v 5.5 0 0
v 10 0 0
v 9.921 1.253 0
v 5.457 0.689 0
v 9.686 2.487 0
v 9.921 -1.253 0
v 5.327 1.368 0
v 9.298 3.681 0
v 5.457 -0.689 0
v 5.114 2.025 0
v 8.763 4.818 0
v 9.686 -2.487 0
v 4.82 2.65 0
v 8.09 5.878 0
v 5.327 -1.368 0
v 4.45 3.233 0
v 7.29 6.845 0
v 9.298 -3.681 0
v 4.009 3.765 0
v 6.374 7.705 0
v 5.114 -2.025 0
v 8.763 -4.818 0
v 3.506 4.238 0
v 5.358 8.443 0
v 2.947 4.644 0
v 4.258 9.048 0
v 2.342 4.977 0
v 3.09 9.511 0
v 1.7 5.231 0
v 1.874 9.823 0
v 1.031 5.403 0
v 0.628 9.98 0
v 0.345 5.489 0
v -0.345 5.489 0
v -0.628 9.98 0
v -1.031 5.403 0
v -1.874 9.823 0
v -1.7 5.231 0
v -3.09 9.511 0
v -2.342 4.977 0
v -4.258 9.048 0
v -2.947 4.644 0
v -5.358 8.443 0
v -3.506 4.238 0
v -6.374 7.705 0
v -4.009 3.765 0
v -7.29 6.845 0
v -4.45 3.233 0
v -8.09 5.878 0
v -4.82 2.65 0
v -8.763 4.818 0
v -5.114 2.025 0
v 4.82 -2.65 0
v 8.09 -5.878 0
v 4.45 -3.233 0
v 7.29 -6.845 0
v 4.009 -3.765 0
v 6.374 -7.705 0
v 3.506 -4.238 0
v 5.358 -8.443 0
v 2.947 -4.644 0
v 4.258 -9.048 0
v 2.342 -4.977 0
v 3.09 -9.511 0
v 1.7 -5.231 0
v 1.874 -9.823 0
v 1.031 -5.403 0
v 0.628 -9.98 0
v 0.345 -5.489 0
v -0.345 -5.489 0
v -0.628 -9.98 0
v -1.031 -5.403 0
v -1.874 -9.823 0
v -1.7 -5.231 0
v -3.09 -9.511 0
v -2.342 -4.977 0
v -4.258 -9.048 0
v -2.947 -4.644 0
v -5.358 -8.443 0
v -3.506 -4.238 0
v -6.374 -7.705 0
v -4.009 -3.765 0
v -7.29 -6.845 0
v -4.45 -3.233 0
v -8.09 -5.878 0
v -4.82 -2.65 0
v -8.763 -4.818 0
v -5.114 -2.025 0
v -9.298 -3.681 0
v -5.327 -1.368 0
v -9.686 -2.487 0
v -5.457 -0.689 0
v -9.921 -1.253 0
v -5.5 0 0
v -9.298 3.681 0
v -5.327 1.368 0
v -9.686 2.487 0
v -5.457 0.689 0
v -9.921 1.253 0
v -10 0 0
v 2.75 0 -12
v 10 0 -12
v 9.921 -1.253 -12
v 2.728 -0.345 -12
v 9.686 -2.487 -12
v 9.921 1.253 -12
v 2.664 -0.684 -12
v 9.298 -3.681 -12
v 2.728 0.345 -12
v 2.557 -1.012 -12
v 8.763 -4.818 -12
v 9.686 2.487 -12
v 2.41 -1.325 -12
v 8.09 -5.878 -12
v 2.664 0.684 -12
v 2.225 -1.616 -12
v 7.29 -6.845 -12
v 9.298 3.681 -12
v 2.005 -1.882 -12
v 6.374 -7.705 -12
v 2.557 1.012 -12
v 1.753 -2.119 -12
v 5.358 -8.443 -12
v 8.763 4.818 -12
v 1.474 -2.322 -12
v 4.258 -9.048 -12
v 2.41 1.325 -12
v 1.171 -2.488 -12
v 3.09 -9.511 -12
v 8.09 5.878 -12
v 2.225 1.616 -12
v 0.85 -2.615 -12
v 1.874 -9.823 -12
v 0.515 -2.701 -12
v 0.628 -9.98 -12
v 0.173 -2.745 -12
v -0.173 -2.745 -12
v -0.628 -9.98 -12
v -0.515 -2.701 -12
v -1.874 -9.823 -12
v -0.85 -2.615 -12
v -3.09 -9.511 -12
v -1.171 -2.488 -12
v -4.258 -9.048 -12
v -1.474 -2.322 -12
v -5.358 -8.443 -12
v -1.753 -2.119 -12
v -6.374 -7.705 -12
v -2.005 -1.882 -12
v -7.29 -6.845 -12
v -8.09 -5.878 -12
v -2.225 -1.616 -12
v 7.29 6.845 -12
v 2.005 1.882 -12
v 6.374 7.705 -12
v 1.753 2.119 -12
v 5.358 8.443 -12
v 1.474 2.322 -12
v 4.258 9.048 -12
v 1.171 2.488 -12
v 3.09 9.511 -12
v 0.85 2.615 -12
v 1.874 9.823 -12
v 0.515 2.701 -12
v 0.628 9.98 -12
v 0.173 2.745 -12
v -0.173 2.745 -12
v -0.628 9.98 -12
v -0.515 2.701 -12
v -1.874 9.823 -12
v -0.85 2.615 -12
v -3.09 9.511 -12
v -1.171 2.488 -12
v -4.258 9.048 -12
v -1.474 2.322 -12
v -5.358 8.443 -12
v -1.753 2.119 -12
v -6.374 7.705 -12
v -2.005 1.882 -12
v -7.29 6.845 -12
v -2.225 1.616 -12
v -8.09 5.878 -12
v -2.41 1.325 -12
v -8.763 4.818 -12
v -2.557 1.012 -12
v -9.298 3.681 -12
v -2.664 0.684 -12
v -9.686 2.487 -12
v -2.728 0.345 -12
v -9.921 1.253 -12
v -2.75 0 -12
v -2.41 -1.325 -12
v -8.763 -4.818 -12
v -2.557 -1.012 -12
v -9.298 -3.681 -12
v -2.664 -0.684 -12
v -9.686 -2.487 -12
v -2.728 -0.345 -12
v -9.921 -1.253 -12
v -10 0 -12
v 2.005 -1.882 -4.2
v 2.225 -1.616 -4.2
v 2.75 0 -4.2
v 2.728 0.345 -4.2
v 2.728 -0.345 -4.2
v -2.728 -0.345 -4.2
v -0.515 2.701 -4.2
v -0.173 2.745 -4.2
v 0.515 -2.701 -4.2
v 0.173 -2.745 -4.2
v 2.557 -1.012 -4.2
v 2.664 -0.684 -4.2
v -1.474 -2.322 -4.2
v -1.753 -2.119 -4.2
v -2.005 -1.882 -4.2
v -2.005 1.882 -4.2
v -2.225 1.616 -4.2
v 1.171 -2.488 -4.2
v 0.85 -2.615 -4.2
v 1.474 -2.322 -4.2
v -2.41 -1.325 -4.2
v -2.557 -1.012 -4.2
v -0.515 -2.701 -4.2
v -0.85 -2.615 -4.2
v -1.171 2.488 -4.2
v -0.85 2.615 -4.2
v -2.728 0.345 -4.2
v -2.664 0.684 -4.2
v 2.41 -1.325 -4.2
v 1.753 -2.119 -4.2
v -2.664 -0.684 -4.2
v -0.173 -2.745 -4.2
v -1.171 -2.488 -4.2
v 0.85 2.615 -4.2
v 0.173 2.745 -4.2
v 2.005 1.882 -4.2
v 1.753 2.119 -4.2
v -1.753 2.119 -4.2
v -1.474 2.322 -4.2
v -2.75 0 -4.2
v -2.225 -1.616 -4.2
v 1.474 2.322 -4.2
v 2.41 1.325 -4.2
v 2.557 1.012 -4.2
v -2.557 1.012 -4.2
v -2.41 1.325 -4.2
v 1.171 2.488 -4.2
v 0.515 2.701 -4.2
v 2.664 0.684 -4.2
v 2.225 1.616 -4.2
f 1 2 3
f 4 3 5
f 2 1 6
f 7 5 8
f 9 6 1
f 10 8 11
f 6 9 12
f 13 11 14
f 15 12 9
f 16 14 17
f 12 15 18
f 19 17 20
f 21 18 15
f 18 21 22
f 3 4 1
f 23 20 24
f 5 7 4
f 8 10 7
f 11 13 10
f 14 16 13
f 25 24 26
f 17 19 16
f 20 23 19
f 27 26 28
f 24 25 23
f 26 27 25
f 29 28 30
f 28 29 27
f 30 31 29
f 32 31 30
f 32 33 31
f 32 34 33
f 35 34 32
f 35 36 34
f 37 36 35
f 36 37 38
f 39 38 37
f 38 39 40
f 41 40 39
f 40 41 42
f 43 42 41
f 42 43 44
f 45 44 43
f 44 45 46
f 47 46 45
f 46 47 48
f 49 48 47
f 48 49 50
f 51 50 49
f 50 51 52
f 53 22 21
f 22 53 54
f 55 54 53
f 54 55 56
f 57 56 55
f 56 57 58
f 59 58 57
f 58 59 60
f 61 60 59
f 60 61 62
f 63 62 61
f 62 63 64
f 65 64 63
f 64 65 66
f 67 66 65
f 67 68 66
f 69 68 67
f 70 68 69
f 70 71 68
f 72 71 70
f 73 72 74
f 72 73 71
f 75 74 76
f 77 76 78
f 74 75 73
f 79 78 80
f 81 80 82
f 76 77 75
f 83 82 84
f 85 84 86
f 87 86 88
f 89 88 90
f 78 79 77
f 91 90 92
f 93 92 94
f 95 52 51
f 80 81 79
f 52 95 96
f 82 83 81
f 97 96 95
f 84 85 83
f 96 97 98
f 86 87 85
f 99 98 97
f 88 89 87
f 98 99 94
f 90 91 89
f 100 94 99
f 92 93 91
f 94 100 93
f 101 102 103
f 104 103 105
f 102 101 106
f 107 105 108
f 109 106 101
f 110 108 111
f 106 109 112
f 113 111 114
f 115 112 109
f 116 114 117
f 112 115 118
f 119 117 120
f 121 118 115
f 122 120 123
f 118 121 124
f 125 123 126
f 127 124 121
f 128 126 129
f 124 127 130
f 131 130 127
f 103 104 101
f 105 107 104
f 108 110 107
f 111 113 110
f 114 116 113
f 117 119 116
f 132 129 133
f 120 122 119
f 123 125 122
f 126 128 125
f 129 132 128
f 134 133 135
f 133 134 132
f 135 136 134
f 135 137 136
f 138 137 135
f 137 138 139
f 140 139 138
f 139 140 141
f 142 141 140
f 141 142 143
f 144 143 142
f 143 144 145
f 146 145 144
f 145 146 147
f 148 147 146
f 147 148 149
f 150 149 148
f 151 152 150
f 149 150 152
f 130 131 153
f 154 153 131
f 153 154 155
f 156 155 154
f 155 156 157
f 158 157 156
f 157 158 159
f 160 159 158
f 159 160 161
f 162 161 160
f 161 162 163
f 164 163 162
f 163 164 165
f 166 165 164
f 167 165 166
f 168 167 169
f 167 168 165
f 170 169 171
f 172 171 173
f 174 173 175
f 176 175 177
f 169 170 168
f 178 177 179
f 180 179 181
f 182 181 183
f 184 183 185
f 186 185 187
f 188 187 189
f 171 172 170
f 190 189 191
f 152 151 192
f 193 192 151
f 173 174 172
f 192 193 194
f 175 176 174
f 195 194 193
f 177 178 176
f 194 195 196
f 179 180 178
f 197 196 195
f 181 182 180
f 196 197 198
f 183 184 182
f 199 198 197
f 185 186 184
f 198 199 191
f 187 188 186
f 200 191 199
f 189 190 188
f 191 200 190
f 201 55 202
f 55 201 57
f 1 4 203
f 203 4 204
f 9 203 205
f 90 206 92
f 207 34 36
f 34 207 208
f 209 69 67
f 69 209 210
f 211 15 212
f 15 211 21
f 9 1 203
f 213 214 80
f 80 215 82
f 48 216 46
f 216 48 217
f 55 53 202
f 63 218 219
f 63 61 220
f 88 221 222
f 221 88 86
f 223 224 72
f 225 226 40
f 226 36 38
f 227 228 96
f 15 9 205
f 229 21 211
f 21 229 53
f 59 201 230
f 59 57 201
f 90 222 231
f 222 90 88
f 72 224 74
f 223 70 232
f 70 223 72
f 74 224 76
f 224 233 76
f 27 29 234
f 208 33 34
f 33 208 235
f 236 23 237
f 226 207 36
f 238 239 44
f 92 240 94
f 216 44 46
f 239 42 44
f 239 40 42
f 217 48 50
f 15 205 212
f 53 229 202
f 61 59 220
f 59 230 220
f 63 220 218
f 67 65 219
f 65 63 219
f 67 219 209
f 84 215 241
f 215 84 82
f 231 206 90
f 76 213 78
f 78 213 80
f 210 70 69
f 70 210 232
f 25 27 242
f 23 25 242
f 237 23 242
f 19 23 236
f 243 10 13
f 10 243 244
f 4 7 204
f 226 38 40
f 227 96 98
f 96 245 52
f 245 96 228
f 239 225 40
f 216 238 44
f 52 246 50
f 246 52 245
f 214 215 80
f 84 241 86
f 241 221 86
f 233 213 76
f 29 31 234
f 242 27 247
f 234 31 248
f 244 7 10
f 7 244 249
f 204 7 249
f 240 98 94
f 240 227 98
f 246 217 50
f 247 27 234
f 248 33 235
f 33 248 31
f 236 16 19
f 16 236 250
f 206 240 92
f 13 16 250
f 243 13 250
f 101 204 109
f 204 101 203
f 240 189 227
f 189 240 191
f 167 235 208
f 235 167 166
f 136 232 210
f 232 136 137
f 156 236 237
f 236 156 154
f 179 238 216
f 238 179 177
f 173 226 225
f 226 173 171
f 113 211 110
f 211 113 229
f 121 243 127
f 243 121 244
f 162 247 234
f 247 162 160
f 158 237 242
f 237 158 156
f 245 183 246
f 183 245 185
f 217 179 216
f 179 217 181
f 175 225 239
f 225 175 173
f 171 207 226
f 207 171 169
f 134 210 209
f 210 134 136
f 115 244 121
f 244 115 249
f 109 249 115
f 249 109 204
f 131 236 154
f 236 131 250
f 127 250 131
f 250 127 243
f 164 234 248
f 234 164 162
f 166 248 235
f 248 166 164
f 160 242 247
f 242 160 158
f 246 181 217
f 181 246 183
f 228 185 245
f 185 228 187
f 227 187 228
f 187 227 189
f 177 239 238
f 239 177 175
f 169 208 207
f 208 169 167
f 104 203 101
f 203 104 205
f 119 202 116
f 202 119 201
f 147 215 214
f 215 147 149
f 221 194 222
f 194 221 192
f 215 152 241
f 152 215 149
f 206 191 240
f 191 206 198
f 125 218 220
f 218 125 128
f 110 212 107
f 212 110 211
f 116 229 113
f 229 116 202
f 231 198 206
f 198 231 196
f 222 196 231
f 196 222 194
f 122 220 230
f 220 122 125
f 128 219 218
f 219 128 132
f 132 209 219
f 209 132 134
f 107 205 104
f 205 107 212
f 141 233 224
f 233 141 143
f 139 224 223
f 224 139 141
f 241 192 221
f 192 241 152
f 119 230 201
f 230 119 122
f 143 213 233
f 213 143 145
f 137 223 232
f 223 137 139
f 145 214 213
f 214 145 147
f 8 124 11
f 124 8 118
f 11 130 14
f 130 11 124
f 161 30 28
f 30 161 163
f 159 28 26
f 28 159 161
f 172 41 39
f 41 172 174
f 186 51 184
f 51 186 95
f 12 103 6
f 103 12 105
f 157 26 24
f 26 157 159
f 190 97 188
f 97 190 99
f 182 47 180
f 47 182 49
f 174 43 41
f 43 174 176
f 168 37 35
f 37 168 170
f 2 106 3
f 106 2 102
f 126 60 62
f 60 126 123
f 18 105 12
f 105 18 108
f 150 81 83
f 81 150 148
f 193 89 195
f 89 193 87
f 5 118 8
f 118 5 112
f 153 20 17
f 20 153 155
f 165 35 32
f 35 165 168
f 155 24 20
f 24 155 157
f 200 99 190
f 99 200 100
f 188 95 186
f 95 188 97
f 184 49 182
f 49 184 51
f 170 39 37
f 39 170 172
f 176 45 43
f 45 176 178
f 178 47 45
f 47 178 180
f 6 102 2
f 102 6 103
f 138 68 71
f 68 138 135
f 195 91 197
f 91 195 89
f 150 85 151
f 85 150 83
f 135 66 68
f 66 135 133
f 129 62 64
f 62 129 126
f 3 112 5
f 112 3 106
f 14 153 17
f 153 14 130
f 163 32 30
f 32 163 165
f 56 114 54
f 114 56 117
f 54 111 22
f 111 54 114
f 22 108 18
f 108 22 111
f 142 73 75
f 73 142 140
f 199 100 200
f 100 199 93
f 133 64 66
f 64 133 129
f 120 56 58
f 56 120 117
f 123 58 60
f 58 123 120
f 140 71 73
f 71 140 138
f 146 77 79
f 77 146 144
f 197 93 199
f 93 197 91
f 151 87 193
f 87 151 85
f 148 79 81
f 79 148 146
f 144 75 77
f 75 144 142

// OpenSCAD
$fn = 50;


difference() {
	union() {
		translate(v = [0, 0, -12.0000000000]) {
			cylinder(h = 12, r = 10.0000000000);
		}
	}
	union() {
		translate(v = [0, 0, 0]) {
			rotate(a = [0, 0, 0]) {
				difference() {
					union() {
						#translate(v = [0, 0, -12.0000000000]) {
							cylinder(h = 12, r = 2.2500000000);
						}
						#translate(v = [0, 0, -4.2000000000]) {
							cylinder(h = 4.2000000000, r1 = 2.7500000000, r2 = 5.5000000000);
						}
						#translate(v = [0, 0, -12.0000000000]) {
							cylinder(h = 12, r = 2.7500000000);
						}
						#translate(v = [0, 0, -12.0000000000]) {
							cylinder(h = 12, r = 2.2500000000);
						}
					}
					union();
				}
			}
		}
	}
}
